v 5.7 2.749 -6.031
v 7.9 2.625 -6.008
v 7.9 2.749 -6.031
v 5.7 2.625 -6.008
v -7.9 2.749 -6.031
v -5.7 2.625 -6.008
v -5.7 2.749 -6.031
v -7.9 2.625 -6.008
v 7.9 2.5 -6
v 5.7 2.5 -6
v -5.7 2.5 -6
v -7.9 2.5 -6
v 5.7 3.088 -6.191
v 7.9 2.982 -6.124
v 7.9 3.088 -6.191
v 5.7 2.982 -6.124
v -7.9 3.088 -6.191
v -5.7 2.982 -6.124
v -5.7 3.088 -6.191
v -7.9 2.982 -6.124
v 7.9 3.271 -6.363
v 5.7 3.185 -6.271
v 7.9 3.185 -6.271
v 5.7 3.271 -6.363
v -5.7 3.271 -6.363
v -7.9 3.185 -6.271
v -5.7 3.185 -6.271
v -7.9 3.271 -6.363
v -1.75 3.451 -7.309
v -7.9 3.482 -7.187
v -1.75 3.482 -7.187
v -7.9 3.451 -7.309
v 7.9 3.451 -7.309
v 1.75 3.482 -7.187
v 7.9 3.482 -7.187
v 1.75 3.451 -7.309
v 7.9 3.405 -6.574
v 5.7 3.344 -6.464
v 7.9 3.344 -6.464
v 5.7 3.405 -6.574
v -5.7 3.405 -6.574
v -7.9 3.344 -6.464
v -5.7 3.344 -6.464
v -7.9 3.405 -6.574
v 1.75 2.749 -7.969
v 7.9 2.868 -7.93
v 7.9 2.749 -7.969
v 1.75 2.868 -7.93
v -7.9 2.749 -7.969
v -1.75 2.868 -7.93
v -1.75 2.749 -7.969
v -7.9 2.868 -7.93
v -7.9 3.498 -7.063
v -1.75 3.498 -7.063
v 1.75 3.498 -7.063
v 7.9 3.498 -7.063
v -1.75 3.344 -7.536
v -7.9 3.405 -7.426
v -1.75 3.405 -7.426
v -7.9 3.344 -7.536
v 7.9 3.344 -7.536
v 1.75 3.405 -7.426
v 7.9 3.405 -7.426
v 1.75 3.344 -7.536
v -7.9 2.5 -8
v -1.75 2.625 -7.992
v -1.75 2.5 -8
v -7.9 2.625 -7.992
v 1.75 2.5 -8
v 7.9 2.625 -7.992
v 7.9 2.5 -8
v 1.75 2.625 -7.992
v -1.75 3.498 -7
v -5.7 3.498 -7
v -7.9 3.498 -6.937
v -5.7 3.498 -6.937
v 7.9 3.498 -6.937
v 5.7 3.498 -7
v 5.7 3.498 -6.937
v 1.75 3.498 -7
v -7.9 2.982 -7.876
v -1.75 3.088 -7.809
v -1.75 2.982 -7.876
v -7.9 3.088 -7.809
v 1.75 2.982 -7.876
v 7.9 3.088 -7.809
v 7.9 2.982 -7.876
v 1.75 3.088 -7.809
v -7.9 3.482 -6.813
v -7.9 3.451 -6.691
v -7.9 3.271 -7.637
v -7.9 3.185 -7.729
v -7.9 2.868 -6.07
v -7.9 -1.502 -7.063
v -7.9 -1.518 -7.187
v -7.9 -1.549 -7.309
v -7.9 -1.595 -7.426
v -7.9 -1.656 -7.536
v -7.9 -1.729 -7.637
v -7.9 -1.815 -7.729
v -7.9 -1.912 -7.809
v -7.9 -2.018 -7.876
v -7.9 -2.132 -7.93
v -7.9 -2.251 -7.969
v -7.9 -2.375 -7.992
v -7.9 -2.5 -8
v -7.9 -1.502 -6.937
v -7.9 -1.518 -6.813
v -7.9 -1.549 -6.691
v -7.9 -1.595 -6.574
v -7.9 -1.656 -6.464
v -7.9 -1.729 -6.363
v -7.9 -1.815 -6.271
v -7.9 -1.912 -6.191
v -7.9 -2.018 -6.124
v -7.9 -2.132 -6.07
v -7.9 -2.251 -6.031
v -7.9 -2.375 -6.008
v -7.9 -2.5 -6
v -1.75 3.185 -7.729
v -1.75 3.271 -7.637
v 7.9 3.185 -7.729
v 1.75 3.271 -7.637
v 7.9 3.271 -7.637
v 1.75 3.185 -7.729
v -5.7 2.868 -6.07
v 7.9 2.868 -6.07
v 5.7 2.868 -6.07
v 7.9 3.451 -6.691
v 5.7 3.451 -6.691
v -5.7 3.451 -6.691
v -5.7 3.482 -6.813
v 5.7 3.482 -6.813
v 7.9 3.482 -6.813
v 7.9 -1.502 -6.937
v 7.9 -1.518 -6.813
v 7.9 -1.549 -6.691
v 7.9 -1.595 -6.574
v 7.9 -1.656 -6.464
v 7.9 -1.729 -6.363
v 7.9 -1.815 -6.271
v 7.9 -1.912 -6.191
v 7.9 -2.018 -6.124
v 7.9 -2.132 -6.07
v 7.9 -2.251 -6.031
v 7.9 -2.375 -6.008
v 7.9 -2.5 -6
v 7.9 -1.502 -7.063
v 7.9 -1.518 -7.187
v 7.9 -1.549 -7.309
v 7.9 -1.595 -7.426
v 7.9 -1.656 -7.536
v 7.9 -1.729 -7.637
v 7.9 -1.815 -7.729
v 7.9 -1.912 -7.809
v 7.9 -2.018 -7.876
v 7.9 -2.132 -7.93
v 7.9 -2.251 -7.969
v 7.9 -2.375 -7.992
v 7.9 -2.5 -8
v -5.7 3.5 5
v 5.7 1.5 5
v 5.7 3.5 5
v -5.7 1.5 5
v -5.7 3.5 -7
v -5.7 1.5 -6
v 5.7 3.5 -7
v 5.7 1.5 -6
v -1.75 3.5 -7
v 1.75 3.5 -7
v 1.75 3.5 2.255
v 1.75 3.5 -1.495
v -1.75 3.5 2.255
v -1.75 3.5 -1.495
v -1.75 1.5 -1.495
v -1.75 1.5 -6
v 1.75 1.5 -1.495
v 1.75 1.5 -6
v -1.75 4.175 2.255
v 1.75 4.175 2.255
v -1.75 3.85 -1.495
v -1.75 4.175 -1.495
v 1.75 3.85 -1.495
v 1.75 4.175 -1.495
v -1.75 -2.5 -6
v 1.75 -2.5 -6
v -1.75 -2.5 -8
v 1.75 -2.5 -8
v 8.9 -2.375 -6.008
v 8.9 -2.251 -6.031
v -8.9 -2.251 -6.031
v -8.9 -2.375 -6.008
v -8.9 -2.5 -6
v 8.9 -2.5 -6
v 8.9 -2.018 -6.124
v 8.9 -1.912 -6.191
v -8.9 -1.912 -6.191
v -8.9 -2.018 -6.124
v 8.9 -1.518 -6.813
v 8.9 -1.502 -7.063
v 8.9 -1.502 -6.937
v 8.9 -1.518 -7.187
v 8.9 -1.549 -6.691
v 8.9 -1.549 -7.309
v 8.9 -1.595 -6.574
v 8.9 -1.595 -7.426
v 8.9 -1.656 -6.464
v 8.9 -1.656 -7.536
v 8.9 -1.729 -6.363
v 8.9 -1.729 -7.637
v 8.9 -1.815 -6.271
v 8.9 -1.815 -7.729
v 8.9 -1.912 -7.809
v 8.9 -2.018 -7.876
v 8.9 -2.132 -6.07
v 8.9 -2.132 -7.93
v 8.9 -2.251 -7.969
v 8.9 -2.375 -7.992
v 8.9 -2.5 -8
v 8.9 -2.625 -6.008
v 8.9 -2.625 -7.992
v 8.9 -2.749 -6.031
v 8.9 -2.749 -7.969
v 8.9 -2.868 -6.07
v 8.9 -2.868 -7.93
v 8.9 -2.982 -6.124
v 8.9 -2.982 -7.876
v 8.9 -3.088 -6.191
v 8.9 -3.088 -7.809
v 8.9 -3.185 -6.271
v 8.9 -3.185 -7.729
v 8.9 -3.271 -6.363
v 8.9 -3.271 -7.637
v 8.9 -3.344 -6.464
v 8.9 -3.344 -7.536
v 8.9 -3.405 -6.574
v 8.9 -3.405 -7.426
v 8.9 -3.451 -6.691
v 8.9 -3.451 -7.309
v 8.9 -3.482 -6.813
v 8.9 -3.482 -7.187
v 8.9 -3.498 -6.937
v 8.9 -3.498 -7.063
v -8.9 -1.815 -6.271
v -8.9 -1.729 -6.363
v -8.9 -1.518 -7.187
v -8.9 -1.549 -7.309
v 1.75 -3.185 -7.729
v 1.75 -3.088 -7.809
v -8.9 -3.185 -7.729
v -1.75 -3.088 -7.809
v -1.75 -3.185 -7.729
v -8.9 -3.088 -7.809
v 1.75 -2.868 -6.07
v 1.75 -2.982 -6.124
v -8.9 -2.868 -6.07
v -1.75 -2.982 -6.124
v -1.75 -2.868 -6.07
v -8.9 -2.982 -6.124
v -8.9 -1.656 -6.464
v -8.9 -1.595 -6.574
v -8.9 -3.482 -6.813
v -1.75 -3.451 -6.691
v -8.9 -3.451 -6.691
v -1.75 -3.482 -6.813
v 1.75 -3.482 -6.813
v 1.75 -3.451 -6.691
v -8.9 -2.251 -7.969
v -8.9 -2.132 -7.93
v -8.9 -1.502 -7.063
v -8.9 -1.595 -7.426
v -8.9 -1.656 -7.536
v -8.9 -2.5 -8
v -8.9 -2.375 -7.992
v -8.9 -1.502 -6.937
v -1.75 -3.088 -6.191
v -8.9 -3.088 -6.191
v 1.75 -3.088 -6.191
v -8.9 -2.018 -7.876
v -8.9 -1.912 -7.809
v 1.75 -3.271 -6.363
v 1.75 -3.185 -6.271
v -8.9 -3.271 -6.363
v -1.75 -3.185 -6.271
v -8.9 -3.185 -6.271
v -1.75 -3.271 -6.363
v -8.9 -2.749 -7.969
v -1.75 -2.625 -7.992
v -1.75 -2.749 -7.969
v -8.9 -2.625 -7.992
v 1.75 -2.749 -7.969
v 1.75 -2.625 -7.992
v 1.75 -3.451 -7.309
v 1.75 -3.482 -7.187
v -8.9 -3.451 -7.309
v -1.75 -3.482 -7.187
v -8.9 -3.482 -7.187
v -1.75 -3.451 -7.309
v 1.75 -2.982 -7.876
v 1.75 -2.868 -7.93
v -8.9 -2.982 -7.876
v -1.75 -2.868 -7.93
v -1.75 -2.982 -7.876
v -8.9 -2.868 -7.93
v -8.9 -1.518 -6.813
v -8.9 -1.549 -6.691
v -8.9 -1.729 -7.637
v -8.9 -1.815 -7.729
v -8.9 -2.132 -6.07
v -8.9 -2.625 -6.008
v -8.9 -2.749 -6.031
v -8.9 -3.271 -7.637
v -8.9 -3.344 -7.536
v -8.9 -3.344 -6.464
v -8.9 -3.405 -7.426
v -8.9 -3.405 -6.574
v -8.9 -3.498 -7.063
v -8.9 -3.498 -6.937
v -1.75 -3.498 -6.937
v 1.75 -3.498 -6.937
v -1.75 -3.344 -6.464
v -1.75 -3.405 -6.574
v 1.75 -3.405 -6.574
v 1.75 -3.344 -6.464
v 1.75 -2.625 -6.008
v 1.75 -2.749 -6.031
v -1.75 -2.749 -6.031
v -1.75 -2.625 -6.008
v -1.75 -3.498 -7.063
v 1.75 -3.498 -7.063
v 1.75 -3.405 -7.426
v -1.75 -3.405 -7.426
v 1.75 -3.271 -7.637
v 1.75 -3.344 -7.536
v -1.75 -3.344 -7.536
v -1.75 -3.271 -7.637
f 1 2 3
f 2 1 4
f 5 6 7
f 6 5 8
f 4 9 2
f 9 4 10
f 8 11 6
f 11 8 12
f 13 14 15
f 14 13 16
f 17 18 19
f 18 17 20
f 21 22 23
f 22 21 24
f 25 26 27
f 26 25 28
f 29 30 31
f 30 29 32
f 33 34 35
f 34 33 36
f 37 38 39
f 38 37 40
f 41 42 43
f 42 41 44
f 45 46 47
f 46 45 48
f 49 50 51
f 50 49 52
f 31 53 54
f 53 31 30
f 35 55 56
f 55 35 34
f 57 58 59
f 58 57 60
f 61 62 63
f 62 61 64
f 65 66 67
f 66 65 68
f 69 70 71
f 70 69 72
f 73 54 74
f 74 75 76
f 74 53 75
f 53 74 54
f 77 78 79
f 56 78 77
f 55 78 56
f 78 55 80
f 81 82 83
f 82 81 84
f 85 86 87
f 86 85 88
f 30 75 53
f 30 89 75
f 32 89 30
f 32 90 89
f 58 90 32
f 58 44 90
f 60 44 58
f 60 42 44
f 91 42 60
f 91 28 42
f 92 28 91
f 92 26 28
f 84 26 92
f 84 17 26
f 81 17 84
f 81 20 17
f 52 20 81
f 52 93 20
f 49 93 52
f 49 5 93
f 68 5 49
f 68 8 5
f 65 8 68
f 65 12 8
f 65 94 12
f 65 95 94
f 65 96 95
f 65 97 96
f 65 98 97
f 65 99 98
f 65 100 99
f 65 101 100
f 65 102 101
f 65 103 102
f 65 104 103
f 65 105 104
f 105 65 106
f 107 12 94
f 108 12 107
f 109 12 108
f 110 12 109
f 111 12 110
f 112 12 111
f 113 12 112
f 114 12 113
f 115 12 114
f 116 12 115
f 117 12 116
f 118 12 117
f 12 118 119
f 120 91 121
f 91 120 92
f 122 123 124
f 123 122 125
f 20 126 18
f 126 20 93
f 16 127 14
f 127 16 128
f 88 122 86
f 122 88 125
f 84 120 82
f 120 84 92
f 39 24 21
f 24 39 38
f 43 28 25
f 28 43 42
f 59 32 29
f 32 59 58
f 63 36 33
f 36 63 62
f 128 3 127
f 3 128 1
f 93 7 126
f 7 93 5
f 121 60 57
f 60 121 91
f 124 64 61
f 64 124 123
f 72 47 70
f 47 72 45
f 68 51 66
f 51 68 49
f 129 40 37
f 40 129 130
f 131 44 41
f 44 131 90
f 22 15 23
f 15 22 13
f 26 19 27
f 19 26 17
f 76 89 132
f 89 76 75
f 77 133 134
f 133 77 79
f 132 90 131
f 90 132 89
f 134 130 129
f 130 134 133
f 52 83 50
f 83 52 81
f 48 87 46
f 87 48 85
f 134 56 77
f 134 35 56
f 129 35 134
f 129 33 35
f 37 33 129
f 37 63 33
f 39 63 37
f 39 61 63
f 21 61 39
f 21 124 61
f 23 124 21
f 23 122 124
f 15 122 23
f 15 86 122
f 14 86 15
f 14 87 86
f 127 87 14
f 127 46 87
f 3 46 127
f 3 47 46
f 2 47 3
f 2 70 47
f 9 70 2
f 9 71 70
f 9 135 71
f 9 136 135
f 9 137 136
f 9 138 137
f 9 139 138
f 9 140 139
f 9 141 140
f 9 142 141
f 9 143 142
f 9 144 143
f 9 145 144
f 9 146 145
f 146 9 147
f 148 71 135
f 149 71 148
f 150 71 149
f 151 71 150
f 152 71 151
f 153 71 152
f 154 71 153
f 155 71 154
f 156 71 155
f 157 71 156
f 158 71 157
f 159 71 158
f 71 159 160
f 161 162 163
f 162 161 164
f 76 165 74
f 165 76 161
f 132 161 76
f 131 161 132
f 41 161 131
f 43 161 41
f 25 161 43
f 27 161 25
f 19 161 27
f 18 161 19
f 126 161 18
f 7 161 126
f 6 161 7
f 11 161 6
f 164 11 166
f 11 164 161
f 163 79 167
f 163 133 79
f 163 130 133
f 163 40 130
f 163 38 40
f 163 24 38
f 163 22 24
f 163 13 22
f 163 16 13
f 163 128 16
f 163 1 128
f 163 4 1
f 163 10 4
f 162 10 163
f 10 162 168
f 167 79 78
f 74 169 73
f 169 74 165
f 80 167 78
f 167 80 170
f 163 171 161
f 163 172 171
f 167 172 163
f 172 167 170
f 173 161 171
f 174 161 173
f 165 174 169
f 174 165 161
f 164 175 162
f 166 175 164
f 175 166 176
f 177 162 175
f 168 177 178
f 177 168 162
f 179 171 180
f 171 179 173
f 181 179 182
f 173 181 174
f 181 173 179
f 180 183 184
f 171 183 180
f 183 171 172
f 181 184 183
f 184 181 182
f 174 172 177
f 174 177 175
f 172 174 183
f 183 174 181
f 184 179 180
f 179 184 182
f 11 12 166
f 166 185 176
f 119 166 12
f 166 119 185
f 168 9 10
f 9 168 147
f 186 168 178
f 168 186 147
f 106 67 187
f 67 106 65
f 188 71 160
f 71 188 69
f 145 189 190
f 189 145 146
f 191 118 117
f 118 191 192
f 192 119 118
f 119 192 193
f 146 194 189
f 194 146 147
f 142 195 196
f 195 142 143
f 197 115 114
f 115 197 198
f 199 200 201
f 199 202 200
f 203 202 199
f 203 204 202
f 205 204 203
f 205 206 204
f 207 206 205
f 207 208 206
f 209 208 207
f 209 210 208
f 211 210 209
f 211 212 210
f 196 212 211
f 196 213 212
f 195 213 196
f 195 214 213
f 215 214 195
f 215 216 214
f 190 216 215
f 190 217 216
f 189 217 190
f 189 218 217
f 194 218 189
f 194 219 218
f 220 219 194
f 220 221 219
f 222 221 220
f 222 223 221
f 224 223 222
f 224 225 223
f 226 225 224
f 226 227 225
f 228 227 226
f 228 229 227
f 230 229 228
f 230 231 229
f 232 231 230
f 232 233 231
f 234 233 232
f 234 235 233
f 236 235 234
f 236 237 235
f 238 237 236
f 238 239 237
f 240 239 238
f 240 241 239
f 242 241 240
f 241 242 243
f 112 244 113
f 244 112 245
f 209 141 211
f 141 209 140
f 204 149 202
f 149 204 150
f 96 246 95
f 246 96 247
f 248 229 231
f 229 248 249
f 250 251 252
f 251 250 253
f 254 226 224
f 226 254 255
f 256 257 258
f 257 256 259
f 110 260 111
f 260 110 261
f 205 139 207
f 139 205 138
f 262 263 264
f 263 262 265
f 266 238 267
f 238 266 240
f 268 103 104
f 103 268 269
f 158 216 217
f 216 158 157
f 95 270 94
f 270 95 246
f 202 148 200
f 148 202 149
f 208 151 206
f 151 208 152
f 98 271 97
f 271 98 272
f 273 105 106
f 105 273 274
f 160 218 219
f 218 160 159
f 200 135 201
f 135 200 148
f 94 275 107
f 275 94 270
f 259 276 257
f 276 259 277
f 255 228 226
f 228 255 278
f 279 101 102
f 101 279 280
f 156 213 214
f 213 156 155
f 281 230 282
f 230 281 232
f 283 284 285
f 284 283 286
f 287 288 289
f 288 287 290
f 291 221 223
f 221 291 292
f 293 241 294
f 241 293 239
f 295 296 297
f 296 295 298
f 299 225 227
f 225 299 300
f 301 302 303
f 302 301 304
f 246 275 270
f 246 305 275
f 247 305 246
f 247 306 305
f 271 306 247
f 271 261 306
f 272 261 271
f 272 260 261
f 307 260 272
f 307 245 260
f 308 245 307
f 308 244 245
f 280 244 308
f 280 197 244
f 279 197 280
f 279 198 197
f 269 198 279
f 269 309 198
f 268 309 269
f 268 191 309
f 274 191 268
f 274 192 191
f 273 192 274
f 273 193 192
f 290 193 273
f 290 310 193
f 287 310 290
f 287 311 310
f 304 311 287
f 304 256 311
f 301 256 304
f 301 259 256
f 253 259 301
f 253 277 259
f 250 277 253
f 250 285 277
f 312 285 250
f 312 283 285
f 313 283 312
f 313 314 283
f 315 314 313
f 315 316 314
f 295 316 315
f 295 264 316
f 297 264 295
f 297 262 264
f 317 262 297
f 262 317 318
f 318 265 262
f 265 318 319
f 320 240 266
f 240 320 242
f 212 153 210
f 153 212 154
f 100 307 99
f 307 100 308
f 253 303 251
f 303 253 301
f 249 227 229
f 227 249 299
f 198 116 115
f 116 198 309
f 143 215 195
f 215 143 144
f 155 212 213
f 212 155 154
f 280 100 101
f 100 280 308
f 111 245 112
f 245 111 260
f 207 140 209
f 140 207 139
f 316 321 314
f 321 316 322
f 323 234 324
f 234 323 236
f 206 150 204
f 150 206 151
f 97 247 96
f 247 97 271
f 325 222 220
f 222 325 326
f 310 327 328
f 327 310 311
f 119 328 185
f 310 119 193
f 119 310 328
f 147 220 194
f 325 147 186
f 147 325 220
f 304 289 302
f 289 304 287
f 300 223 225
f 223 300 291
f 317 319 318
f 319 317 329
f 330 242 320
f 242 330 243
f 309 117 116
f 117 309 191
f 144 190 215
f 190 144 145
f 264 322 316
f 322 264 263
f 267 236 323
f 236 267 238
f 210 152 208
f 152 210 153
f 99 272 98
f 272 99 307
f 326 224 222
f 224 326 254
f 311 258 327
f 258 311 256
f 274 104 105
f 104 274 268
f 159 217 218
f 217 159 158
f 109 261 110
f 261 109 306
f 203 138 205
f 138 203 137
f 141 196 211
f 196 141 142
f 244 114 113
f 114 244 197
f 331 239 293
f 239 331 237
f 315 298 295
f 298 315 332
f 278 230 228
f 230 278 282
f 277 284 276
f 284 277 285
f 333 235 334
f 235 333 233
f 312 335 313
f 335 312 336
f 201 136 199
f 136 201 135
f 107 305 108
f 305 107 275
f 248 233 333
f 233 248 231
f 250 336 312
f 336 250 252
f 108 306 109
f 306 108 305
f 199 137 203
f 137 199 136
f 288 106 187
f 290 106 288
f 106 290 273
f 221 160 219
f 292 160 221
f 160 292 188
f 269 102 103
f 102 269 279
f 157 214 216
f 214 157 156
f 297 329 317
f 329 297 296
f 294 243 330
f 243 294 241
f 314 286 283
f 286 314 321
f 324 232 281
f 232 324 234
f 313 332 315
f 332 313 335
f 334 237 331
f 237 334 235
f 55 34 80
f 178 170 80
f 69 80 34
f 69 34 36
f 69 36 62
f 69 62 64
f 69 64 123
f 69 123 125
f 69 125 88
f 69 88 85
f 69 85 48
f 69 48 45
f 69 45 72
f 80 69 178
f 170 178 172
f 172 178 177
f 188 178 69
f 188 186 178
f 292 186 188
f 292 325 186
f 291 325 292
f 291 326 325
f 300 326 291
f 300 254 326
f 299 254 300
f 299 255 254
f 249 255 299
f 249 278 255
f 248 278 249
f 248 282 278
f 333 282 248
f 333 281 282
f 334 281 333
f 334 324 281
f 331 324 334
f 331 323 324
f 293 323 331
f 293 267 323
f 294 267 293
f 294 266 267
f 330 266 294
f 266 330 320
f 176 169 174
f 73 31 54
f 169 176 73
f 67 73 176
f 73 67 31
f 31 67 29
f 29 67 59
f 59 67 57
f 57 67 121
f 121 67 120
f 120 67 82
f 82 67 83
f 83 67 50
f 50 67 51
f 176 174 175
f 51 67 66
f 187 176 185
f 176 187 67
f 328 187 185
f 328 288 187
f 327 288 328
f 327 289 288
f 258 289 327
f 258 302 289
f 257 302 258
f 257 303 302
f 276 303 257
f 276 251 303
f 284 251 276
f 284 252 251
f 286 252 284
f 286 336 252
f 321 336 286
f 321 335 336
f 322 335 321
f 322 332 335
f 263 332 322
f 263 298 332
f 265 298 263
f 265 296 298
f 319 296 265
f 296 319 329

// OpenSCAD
// This file is licensed under CC0 1.0 Universal.
// See https://creativecommons.org/publicdomain/zero/1.0/
loewetv_klappen_befestigung();

module loewetv_klappen_befestigung() {
    $fn = 50;
    dicke         = 2;
    tv_laenge     = 12;
    tv_breite     = 11.4;
    klappe_breite = 15.8;
    //verschieben damit es mittig ist (ist so einfacher gewesen :()
    translate([0, 0, (tv_laenge + dicke) / -2]) {
        difference() {
            rotate([0, 270, 0]) {
                union() {
                    translate([0, 2.5, 0]) {
                        cylinder(d = dicke, h = klappe_breite, center = true);
                        translate([tv_laenge / 2, 0, 0]) {
                            cube([tv_laenge, dicke, tv_breite], center = true);
                        }
                        //die 7.38 verstehe ich gar nicht :(
                        //die 1.3 auch nicht :(
                        translate([7.38, 1.3, 0]) {
                            cube([3.75, 0.75, 3.5], center = true);
                        }
                    }
                    cube([dicke, 5, klappe_breite], center = true);
                    translate([0, -2.5, 0]) {
                        cylinder(d = dicke, h = klappe_breite + 2, center = true);
                    }
                }
            }

            translate([0, 0, (6.5 - dicke) / 2]) {
                cube([3.5, (5 + dicke) * 1.1, 6.51], center = true);
            }
        }
    }
}
